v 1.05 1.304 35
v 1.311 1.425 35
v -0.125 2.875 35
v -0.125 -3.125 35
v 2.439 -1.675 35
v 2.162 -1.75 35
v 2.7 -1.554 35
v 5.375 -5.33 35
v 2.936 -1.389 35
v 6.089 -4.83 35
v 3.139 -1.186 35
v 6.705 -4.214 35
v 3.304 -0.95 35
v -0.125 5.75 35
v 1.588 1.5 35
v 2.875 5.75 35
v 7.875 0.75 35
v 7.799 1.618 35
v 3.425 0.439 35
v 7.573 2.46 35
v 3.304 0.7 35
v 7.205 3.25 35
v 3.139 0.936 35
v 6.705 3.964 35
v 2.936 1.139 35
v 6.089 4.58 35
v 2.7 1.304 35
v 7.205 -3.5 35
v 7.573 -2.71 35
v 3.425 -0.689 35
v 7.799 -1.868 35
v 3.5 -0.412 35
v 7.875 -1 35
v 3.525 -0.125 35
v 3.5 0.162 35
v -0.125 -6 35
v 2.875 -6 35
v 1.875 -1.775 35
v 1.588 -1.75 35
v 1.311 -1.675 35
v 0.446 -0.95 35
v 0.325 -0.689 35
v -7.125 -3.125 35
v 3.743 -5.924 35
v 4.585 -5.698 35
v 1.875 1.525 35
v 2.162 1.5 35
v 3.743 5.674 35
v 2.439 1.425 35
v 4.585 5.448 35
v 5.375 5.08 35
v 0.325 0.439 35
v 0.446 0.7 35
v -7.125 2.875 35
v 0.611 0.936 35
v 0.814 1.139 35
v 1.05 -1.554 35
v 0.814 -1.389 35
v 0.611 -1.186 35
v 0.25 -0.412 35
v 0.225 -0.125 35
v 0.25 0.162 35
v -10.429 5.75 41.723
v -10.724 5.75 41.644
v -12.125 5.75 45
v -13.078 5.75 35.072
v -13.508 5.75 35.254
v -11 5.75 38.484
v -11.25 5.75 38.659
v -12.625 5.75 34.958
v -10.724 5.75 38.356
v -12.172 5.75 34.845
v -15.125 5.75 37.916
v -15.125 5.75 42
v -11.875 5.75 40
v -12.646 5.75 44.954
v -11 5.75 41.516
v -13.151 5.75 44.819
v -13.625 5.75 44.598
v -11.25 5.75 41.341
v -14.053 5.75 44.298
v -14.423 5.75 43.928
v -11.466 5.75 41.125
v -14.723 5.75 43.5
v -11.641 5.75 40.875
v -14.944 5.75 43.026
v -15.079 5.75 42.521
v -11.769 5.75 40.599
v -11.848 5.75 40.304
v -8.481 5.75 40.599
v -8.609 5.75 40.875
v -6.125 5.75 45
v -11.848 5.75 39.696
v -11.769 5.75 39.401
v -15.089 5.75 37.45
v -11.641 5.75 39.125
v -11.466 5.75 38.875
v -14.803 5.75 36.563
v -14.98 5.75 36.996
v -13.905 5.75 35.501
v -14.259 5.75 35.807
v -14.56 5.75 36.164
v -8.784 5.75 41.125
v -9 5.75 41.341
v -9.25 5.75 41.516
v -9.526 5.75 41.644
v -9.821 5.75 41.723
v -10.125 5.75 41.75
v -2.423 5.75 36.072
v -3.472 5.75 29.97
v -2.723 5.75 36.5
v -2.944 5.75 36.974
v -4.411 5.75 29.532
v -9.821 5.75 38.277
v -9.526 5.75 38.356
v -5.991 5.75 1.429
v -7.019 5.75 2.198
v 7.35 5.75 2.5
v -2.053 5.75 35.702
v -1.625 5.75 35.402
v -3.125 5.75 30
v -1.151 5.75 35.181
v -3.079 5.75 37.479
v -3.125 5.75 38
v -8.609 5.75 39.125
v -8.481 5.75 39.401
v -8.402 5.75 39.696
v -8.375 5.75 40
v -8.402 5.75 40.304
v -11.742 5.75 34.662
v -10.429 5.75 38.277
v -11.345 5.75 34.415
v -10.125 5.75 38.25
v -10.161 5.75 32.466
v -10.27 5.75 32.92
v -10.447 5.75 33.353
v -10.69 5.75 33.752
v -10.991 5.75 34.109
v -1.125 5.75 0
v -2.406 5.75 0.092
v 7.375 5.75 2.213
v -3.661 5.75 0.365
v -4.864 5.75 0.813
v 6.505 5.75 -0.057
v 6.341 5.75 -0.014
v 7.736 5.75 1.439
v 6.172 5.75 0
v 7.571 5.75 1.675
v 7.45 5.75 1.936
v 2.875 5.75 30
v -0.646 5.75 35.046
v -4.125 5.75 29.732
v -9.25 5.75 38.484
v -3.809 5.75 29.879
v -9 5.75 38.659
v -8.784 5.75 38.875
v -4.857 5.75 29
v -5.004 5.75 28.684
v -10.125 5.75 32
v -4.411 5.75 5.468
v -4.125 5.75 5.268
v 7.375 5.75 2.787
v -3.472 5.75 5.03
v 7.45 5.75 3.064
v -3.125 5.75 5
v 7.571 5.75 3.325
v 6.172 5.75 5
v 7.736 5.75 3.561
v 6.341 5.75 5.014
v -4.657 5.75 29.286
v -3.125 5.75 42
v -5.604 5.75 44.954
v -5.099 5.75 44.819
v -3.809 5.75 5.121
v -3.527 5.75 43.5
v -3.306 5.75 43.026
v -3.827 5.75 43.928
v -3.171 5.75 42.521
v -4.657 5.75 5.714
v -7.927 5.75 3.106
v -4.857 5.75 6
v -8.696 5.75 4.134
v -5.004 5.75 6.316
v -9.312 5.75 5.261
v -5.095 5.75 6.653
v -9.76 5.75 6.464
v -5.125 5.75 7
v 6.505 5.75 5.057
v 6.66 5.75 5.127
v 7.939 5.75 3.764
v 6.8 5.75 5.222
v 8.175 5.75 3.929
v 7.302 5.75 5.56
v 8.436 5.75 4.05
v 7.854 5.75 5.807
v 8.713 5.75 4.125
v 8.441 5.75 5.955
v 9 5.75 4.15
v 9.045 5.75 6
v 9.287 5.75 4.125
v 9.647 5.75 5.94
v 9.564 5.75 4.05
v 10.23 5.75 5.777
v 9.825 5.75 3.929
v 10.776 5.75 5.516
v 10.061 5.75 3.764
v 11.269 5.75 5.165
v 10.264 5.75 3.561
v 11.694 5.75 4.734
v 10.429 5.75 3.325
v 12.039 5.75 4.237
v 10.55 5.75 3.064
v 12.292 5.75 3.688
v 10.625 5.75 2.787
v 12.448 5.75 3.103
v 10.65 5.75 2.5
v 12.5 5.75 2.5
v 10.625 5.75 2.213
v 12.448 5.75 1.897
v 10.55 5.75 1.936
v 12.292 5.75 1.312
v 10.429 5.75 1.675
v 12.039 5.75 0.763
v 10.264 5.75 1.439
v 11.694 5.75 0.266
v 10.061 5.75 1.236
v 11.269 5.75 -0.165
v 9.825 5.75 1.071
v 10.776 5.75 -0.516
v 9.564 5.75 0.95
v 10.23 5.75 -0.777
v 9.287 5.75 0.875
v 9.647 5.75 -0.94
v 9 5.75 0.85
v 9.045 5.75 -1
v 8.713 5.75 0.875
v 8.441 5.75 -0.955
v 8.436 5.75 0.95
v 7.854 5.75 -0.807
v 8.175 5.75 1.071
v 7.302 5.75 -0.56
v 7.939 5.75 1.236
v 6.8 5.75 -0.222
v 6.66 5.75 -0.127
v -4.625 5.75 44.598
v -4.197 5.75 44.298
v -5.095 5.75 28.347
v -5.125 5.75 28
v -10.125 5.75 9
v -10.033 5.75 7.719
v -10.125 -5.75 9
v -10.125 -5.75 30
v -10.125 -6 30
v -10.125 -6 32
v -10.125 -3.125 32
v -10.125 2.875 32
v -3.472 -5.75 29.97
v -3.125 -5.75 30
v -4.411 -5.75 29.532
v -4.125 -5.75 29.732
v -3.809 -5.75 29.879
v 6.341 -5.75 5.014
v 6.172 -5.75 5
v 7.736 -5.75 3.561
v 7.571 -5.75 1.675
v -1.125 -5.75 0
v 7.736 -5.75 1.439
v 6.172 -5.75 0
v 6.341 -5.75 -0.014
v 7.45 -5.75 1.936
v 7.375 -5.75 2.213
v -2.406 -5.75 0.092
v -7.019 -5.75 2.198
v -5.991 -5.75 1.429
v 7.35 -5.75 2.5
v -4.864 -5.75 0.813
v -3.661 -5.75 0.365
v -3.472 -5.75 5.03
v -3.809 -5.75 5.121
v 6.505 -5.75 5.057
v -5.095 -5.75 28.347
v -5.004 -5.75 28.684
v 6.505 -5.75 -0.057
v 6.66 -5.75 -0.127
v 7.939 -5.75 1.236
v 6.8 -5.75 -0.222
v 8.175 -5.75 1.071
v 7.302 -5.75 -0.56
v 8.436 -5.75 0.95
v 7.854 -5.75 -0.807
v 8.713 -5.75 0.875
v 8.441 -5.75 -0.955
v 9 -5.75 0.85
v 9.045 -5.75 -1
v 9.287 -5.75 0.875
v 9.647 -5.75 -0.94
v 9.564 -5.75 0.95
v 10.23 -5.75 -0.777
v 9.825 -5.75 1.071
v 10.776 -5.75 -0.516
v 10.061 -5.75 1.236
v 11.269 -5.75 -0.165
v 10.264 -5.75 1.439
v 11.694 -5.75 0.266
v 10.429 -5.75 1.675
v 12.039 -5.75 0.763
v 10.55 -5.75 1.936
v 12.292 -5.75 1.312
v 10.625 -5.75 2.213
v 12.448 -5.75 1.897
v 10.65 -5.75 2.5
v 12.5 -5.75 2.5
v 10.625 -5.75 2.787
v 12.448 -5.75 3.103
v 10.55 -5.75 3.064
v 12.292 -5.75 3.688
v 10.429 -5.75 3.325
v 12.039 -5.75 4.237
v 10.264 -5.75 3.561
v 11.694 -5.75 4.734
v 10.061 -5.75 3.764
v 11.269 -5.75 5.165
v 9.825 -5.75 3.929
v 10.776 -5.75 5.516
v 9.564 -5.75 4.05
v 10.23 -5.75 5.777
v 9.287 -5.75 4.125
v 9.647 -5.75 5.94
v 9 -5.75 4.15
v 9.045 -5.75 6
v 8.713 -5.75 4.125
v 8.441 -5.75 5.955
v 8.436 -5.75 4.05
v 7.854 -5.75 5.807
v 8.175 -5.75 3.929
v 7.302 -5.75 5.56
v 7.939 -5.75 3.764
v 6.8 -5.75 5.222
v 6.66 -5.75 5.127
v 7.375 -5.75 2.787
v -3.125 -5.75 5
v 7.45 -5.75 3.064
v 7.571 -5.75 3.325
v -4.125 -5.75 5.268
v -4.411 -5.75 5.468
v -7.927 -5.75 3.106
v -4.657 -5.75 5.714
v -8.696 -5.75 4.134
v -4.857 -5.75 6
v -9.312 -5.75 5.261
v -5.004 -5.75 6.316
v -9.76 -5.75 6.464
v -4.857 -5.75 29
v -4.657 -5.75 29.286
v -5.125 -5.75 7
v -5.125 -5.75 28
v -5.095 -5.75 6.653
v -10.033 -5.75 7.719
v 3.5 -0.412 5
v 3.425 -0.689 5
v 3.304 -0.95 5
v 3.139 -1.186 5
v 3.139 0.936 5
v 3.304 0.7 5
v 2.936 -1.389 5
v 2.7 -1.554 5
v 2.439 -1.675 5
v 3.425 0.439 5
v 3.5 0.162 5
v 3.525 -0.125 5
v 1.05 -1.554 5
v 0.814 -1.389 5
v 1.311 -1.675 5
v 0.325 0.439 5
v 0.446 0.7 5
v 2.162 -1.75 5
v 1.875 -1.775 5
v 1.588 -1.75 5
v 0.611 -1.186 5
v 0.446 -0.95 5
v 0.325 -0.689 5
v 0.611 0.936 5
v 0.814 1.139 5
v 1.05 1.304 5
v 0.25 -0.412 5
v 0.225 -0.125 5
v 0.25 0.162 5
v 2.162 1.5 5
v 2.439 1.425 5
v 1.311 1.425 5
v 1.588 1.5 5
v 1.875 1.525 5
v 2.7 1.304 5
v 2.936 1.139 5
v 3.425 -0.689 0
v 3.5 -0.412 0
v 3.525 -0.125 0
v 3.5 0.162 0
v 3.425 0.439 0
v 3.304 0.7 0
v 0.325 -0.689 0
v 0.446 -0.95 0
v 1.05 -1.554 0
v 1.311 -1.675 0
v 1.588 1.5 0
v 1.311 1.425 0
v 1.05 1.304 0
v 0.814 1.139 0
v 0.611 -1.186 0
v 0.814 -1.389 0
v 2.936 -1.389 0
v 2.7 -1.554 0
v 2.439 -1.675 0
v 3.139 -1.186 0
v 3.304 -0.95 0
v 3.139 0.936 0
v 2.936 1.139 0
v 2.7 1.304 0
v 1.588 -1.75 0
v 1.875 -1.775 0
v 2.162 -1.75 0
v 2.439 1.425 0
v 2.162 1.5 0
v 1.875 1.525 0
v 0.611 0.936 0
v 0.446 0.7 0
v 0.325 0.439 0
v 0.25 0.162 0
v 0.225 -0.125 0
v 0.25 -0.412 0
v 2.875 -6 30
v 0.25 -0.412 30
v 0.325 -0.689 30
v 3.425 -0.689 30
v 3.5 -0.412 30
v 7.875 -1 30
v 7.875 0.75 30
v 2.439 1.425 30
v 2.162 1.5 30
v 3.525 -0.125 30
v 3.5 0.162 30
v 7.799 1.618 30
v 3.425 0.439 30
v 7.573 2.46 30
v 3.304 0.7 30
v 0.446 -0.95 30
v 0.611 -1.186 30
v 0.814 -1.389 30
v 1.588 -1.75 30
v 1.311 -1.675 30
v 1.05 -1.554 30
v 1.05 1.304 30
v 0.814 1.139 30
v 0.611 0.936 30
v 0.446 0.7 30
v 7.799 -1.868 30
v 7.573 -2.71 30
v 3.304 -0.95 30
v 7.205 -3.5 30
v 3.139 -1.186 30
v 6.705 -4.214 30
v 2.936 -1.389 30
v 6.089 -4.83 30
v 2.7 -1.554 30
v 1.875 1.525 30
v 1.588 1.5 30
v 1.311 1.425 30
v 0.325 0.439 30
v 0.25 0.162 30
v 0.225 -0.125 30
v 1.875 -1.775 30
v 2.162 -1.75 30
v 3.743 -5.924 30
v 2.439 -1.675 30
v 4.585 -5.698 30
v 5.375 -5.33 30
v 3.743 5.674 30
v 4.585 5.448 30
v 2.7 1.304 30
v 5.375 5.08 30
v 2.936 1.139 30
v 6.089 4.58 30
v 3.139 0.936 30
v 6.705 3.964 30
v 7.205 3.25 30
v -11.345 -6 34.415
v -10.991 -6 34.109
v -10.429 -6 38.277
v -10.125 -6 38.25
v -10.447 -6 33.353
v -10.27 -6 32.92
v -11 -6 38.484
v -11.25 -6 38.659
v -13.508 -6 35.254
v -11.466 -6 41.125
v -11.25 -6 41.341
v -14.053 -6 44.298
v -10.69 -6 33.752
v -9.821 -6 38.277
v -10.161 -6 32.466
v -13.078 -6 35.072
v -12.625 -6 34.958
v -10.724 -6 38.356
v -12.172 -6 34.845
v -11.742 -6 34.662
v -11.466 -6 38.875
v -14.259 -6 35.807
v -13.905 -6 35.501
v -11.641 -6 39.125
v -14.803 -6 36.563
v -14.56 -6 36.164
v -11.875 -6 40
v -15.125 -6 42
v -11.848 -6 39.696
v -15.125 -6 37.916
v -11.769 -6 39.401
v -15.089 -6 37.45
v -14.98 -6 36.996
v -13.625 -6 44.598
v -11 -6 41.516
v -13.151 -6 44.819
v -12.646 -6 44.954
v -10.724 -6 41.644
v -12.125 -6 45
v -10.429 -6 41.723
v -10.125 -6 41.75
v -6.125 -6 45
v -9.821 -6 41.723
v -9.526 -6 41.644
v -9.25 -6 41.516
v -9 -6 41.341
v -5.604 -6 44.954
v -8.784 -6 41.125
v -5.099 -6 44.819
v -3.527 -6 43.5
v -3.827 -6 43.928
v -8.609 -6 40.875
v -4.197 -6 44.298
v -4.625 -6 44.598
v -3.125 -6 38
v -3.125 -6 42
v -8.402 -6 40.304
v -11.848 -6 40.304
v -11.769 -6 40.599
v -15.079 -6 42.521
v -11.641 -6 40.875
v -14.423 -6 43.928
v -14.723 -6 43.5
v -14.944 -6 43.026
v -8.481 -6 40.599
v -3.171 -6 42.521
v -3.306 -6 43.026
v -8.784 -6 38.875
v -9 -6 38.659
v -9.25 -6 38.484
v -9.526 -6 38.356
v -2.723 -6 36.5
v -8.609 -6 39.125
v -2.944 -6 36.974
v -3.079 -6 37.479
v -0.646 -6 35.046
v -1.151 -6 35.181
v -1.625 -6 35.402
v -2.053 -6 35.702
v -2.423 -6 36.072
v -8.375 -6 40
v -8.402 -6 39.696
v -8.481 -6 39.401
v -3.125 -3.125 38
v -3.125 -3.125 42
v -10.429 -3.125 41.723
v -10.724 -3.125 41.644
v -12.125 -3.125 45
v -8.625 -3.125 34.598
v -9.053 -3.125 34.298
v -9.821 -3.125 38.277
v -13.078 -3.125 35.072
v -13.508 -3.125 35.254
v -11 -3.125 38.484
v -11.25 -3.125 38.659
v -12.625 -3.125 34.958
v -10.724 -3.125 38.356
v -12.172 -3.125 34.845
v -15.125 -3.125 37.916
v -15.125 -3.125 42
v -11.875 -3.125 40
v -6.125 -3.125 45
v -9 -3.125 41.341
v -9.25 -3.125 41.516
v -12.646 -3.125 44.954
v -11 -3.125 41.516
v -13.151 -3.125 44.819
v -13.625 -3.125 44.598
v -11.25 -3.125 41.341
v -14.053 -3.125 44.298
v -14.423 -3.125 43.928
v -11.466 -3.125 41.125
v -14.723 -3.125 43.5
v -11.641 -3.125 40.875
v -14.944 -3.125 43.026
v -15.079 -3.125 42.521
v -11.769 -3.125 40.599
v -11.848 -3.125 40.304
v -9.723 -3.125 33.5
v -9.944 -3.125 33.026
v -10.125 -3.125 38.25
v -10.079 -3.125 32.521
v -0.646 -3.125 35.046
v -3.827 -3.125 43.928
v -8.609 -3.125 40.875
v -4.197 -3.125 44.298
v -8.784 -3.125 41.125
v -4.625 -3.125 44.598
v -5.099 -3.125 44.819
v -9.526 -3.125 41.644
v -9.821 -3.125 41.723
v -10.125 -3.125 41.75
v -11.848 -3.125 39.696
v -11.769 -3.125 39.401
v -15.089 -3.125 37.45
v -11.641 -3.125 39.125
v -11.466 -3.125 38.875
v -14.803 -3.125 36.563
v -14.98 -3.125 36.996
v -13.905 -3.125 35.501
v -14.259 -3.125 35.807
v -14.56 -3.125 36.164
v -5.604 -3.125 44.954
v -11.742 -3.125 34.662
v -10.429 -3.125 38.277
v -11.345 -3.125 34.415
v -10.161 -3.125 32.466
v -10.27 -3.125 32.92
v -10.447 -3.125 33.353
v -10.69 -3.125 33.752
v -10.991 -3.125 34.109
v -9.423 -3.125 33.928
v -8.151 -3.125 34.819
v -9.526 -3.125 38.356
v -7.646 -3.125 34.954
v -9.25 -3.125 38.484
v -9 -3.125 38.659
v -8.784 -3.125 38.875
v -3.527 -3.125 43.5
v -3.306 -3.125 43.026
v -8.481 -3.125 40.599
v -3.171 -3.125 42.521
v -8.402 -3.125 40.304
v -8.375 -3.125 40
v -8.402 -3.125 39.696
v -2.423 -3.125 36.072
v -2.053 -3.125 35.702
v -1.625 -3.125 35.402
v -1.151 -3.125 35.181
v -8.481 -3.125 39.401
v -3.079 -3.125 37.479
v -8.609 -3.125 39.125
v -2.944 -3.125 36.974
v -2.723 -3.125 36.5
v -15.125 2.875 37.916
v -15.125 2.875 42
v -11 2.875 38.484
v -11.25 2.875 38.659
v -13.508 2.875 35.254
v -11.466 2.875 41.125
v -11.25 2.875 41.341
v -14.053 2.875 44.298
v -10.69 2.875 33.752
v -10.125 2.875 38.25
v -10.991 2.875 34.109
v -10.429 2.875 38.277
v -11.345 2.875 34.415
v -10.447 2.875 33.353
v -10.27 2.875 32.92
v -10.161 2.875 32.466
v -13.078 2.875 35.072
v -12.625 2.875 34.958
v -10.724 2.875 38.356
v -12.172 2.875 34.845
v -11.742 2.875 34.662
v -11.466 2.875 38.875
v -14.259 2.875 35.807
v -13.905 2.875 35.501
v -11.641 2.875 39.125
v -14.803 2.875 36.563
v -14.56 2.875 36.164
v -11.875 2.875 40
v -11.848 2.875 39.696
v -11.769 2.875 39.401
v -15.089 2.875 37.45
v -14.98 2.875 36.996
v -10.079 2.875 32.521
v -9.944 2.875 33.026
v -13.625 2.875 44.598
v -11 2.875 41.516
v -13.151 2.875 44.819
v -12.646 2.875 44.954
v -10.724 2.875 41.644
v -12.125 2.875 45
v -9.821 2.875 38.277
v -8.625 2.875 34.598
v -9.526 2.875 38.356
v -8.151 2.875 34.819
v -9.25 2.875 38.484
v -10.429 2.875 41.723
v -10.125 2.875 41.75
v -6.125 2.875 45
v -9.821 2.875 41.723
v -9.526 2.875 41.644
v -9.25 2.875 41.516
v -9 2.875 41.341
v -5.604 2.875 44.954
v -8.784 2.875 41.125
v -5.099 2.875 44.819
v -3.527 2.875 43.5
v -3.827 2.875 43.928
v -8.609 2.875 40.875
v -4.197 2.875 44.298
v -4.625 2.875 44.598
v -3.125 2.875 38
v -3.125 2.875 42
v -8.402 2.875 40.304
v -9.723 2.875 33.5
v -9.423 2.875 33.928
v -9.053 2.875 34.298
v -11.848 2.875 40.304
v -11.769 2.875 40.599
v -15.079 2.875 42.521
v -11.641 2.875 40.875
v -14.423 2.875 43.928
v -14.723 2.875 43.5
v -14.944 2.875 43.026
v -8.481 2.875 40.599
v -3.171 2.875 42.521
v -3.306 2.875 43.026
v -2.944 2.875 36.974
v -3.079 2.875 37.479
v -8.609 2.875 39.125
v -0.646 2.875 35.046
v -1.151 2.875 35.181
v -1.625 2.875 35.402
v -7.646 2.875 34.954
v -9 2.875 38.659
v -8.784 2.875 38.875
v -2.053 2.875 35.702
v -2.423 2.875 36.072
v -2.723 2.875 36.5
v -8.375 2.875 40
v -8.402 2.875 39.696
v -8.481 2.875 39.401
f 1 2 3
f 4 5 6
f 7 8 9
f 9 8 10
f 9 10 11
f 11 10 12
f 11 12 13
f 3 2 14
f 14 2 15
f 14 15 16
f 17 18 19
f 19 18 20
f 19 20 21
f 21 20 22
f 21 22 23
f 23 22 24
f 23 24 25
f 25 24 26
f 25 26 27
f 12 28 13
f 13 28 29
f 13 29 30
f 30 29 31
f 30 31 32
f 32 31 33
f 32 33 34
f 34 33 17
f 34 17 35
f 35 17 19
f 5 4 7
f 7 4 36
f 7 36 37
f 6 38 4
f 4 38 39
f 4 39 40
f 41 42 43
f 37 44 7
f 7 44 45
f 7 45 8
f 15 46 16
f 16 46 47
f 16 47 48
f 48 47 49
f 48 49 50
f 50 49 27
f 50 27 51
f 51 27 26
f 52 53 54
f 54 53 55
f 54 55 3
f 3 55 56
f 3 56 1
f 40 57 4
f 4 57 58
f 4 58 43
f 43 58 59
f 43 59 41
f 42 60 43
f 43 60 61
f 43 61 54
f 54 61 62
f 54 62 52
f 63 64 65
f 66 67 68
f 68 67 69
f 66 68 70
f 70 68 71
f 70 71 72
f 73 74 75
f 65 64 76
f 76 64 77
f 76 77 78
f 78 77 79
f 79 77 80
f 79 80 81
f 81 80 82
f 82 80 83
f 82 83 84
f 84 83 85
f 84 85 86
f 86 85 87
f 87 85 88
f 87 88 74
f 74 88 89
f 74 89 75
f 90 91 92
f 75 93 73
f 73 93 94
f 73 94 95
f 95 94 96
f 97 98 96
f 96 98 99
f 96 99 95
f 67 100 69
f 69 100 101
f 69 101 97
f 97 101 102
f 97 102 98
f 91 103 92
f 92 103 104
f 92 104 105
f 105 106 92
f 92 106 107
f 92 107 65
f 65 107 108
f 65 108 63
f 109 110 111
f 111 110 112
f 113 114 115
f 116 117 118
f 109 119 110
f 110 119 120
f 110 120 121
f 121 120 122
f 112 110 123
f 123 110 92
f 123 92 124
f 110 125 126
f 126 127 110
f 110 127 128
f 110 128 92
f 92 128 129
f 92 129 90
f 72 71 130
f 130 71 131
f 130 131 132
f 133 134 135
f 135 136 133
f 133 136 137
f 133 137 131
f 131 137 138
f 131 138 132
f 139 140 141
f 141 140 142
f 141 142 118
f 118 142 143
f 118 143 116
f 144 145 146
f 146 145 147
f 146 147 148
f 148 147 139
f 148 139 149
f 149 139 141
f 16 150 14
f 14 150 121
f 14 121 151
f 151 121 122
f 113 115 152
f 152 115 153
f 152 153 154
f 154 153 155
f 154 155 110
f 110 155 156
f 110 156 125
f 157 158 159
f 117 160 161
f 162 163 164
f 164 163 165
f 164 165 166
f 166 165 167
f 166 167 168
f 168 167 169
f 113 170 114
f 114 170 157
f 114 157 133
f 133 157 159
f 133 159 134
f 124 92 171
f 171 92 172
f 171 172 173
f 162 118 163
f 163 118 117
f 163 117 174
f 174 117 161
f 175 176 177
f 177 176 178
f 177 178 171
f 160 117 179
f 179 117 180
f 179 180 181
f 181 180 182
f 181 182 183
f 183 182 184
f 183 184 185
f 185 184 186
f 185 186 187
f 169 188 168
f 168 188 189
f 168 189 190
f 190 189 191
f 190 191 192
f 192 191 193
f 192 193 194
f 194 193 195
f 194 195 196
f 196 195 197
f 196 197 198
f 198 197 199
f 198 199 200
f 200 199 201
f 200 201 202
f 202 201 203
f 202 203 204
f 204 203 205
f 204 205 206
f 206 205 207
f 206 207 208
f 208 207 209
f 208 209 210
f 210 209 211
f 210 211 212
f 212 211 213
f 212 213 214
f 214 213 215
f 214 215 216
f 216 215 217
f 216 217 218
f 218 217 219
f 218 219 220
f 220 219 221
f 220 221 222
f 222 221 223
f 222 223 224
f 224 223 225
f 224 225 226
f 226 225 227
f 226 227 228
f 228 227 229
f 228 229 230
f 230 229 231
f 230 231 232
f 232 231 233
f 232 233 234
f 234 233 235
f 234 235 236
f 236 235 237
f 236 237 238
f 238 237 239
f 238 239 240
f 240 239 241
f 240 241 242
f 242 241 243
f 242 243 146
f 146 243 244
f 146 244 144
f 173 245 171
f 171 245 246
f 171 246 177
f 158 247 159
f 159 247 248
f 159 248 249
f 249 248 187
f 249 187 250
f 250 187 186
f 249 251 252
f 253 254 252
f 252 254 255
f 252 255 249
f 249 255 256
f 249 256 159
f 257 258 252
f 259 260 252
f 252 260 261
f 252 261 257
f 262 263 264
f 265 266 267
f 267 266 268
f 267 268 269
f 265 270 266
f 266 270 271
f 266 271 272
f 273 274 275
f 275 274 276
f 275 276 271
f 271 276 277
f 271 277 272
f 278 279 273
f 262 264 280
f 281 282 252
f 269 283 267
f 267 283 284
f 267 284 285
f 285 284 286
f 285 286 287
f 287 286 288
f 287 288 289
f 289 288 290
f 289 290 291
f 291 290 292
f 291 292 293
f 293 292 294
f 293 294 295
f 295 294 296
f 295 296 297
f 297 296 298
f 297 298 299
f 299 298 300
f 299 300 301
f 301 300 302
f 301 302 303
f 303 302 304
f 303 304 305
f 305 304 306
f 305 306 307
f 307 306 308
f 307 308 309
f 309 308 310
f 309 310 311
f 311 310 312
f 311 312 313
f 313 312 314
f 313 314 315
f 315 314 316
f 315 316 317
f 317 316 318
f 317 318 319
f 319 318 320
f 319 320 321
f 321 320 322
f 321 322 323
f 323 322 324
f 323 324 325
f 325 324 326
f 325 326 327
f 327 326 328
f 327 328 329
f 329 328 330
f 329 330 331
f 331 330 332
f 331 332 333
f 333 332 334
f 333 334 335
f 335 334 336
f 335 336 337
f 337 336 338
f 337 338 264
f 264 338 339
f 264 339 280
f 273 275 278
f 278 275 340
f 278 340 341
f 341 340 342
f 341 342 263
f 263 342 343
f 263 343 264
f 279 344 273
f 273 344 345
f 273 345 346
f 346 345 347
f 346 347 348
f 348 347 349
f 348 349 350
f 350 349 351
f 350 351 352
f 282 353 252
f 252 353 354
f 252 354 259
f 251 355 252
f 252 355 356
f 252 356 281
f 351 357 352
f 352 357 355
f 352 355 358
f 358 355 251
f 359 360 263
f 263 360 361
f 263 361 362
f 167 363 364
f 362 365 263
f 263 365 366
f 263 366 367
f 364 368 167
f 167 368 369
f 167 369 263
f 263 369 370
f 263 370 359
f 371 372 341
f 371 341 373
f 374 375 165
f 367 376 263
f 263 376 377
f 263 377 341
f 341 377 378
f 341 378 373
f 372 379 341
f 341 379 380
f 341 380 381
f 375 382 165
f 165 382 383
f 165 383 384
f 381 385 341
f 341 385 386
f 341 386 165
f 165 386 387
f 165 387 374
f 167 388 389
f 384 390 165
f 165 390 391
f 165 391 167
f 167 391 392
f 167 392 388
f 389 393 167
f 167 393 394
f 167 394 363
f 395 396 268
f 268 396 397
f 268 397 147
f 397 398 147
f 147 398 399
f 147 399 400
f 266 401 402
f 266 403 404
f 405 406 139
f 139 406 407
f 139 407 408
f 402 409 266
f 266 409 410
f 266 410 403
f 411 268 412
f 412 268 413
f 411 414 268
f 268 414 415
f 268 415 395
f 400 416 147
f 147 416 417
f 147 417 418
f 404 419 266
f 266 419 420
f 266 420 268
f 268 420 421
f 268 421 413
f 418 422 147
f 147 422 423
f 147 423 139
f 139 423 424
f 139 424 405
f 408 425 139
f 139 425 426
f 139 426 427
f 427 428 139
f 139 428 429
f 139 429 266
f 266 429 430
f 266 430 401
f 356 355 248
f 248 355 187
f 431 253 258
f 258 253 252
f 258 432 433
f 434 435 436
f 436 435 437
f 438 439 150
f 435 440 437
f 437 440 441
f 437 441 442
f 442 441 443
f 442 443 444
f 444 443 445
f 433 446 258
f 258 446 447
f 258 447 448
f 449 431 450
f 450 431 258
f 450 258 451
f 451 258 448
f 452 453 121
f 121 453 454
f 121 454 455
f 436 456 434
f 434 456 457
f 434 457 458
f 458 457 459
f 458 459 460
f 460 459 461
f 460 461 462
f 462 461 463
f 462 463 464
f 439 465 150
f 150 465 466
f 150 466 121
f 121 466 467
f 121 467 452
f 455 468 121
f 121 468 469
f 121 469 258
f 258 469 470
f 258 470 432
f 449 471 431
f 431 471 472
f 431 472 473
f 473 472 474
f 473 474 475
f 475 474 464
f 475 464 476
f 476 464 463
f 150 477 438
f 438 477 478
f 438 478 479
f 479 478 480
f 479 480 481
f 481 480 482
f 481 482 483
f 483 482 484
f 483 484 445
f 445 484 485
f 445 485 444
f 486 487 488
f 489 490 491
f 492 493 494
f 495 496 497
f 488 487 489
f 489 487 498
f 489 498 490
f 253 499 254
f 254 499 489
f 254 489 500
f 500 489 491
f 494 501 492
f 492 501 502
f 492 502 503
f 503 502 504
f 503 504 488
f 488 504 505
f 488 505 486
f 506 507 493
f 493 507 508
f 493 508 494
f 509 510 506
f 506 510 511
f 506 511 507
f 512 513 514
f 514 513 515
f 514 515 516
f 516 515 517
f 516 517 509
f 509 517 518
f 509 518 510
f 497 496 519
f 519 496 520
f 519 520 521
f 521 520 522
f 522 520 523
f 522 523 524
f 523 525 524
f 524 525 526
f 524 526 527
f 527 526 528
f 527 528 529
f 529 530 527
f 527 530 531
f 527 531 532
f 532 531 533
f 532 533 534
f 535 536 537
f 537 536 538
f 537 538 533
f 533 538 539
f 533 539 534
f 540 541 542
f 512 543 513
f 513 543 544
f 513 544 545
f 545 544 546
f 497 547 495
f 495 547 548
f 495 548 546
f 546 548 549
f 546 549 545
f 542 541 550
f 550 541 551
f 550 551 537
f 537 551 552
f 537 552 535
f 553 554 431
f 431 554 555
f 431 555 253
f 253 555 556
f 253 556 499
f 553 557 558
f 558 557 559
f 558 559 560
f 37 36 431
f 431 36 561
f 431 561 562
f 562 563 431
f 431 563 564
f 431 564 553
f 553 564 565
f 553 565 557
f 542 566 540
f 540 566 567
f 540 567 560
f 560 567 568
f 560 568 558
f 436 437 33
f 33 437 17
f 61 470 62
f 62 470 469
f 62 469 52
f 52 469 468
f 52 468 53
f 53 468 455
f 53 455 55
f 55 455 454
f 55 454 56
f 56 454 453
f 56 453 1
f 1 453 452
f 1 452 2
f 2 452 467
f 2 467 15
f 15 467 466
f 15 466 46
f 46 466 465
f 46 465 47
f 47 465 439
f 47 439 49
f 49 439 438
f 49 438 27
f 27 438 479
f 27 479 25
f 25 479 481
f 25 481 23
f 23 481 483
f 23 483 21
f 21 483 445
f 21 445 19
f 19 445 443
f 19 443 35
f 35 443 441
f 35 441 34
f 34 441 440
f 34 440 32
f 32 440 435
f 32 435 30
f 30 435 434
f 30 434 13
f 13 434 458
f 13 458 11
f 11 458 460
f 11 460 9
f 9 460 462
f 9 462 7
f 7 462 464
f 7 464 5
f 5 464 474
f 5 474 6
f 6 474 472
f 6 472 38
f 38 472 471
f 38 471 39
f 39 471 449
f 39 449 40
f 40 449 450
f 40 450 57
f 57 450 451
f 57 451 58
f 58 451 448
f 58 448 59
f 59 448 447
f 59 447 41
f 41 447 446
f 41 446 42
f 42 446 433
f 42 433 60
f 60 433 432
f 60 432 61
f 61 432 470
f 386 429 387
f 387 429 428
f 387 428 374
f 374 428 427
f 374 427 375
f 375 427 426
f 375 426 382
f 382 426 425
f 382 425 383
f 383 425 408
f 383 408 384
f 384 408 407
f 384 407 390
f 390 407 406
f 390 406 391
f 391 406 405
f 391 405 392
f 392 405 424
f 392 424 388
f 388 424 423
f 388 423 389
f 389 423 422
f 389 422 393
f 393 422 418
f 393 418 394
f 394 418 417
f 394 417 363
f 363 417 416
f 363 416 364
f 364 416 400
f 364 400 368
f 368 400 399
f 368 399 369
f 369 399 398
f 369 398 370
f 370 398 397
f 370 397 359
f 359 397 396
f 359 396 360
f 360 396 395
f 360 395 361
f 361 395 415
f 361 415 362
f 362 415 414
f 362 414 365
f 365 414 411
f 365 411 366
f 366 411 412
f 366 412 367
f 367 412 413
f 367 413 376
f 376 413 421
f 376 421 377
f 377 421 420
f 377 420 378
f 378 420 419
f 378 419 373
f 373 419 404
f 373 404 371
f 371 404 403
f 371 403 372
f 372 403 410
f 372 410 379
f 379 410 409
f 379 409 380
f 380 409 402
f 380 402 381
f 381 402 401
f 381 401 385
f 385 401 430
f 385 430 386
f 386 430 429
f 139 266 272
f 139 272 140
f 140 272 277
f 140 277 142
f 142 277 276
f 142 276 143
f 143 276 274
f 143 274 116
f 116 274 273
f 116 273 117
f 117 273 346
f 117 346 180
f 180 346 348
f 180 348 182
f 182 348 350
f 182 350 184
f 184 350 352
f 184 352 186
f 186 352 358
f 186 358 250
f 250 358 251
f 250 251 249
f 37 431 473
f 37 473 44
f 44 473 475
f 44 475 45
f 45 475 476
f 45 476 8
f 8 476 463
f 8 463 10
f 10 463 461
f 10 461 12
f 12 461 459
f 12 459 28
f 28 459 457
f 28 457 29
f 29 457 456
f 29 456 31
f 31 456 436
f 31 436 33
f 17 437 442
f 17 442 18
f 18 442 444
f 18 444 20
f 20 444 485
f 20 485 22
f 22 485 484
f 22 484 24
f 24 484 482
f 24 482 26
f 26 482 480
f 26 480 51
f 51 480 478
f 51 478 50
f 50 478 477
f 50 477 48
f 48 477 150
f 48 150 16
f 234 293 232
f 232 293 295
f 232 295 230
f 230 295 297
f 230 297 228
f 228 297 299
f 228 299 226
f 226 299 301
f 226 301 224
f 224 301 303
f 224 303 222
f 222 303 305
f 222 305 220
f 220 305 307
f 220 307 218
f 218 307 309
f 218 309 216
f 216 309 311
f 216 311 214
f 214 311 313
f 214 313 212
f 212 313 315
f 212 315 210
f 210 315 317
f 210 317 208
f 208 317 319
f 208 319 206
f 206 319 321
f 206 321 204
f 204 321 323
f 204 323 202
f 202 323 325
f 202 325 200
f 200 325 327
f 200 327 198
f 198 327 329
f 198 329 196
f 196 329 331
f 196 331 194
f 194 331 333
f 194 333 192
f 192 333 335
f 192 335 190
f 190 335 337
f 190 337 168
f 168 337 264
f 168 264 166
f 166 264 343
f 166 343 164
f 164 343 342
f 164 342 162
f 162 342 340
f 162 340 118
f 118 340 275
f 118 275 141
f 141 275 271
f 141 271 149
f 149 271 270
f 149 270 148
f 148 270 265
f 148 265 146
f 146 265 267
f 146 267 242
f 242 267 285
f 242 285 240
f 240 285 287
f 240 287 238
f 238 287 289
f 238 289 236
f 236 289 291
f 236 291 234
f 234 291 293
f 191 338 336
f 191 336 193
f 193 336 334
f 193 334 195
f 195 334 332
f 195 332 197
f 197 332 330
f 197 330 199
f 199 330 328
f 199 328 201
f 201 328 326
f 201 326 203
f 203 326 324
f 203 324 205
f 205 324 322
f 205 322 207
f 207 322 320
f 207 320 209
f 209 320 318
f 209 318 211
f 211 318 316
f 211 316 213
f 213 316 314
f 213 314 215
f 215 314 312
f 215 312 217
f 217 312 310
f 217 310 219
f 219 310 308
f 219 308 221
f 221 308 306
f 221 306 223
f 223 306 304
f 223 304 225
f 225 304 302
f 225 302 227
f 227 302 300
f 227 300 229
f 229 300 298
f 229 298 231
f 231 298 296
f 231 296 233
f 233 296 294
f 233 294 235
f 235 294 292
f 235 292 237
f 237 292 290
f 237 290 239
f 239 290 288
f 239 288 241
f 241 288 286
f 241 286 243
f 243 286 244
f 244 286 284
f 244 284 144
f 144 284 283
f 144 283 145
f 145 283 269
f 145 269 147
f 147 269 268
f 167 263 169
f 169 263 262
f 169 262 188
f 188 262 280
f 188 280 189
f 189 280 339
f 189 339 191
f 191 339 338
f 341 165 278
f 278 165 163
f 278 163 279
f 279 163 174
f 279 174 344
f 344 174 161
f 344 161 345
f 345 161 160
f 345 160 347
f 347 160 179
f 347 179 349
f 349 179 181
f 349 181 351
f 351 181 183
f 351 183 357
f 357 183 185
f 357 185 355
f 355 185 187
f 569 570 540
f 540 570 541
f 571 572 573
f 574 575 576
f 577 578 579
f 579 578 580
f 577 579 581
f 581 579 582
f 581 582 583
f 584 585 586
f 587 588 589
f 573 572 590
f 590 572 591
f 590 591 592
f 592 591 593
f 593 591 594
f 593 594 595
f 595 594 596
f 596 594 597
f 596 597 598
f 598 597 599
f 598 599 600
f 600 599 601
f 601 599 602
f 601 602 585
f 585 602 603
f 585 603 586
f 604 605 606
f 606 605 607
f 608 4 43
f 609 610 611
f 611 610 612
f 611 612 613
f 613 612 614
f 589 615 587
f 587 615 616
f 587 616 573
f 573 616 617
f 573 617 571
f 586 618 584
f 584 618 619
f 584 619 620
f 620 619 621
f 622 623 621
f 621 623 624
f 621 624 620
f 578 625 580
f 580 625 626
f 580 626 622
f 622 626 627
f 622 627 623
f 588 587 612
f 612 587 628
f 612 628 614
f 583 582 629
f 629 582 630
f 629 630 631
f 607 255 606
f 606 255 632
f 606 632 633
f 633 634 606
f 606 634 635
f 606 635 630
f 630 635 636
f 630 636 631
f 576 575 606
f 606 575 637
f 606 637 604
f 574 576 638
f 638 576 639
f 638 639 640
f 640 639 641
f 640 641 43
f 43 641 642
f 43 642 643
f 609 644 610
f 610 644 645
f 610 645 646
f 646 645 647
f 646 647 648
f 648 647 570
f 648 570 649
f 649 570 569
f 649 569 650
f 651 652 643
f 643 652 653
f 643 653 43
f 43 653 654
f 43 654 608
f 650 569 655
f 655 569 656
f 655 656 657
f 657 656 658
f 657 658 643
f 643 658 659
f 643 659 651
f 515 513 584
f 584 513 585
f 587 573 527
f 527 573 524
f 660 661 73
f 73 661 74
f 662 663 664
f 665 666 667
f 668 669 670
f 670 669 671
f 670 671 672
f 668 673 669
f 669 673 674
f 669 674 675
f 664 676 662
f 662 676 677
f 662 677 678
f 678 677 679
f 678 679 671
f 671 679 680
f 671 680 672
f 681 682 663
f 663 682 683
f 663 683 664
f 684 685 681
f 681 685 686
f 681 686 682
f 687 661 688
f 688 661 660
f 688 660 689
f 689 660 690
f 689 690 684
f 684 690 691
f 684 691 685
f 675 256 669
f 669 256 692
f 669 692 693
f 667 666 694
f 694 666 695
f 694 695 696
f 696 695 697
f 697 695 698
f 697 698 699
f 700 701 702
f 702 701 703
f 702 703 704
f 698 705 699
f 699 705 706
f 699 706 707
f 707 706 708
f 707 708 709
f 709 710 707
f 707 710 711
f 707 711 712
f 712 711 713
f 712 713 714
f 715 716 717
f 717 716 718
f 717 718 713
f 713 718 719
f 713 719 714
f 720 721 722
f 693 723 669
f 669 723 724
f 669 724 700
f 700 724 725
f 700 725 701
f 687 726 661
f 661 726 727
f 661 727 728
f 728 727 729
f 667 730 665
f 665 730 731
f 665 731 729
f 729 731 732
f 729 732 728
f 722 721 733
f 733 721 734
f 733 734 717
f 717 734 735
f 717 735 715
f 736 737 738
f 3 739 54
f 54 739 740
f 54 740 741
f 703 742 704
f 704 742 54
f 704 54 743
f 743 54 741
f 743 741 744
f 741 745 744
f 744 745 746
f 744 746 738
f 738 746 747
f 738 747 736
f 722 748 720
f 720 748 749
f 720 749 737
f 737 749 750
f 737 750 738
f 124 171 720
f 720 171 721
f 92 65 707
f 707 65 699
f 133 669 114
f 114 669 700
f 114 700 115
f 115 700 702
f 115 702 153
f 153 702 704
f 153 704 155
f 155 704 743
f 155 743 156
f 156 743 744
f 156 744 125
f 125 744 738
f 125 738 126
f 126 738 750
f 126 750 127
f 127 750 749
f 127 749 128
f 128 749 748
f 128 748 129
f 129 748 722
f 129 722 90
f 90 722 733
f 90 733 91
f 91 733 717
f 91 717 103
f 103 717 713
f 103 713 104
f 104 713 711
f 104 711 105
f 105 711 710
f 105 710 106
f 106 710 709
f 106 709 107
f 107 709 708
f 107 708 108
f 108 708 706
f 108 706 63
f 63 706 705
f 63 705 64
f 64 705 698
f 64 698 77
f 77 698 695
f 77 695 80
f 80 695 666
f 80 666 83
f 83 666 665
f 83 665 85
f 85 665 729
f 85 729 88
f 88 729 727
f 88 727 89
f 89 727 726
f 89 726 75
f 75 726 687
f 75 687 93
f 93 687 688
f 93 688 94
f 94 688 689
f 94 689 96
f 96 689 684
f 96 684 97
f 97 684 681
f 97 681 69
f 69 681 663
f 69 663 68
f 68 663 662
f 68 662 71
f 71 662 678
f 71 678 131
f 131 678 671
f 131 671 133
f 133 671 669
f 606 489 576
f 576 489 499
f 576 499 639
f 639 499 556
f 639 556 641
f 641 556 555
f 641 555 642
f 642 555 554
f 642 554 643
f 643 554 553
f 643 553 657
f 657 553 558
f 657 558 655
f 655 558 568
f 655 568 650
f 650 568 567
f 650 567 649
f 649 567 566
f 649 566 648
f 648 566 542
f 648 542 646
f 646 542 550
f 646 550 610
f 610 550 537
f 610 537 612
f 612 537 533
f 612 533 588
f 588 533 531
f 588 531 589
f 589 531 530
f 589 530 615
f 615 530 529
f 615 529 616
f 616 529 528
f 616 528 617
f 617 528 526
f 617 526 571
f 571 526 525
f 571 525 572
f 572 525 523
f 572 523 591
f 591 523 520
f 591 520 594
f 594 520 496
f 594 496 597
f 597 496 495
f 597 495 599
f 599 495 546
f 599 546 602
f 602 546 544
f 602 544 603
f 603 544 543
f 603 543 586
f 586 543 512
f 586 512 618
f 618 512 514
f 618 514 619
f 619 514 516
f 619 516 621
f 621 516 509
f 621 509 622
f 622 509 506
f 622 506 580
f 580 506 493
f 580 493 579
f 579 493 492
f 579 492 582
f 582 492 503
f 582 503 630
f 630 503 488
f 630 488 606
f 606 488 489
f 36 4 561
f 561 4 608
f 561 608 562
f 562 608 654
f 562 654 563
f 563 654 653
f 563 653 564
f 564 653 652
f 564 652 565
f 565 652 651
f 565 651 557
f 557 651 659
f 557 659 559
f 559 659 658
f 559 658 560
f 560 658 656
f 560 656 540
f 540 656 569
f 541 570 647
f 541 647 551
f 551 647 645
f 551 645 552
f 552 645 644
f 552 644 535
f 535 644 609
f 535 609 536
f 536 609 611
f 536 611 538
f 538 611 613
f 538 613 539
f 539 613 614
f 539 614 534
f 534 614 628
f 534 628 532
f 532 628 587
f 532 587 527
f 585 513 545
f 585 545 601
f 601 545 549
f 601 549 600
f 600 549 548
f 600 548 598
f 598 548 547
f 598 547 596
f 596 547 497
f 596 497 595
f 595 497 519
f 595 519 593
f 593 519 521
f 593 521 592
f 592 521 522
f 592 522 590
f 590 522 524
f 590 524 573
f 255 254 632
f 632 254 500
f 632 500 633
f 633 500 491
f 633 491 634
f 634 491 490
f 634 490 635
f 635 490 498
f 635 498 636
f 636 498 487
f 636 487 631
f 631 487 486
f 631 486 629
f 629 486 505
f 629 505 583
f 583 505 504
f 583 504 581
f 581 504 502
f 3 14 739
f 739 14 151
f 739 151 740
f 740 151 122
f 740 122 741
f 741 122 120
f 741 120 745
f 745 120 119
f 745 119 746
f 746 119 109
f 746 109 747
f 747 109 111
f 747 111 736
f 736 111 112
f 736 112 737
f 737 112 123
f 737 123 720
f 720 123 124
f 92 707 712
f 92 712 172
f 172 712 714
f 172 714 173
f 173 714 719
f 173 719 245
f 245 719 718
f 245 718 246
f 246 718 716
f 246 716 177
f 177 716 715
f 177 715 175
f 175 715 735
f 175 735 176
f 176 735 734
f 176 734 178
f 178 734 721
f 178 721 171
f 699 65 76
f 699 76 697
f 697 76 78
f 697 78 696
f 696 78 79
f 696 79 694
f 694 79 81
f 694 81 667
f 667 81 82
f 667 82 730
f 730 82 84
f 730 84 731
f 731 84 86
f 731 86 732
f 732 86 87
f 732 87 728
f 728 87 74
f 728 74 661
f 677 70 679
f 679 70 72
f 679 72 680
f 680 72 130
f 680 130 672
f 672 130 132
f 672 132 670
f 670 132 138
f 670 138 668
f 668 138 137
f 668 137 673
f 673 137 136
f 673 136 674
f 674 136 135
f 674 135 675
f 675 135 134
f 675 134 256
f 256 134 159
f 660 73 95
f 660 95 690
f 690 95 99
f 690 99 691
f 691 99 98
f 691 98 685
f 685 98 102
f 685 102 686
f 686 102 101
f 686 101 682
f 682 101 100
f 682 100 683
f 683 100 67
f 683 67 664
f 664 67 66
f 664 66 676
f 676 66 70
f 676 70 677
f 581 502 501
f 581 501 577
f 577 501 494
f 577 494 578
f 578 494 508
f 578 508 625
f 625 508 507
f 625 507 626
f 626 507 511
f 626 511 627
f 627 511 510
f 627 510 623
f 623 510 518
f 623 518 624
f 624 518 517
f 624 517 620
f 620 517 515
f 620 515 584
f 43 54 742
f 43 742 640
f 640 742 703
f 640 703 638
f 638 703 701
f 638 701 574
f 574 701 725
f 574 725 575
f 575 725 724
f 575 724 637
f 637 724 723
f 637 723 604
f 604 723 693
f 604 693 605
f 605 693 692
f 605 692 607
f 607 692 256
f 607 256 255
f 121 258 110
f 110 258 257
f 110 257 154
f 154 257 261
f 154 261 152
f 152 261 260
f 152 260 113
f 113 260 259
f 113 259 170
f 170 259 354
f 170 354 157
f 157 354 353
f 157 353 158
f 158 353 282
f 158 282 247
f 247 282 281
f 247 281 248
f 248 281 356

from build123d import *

# Parameters (mm, degrees)
SKETCH1_W               = 20.25
SKETCH1_H               = 11.5
BOSS_EXTRUDE1_DEPTH     = 5
SKETCH2_W               = 5
SKETCH2_H               = 11.5
BOSS_EXTRUDE2_DEPTH     = 25
SKETCH3_W               = 18
SKETCH3_H               = 11.75
BOSS_EXTRUDE3_DEPTH     = 5
CUT_EXTRUDE2_DEPTH      = 33.226008518
CUT_EXTRUDE2_DEPTH_BACK = 33.226008518
SKETCH5_R               = 1.65
FILLET1_R               = 9
FILLET7_R               = 5
CUT_EXTRUDE4_DEPTH      = 39.206879289
CUT_EXTRUDE4_DEPTH_BACK = 39.206879289
SKETCH10_R              = 1.65
SKETCH10_4_R            = 3.5
SKETCH10_4_R_2          = 1.65
BOSS_EXTRUDE7_DEPTH     = 11.5
FILLET13_R              = 1
FILLET16_R              = 2
SKETCH11_W              = 12
SKETCH11_H              = 2.875
BOSS_EXTRUDE8_DEPTH     = 10
CUT_EXTRUDE5_DEPTH      = 49.906319888
CUT_EXTRUDE5_DEPTH_BACK = 49.906319888
SKETCH12_R              = 1.75
FILLET17_R              = 3
FILLET18_R              = 3
FILLET19_R              = 3
FILLET20_R              = 2


with BuildPart() as part:
    # Sketch1 → Boss-Extrude1 (new body)
    with BuildSketch(Plane.XY):
        Rectangle(SKETCH1_W, SKETCH1_H)
    extrude(amount=BOSS_EXTRUDE1_DEPTH)

    # Sketch2 → Boss-Extrude2 (add)
    with BuildSketch(Plane.XY.offset(5)):
        with Locations((-7.625, 0)):
            Rectangle(SKETCH2_W, SKETCH2_H)
    extrude(amount=BOSS_EXTRUDE2_DEPTH)

    # Sketch3 → Boss-Extrude3 (add)
    with BuildSketch(Plane.XY.offset(30)):
        with Locations((-1.125, -0.125)):
            Rectangle(SKETCH3_W, SKETCH3_H)
    extrude(amount=BOSS_EXTRUDE3_DEPTH)

    # Sketch5 → Cut-Extrude2 (cut, two sides: drawn at the far end of the back side and taken through both)
    with BuildSketch(Plane(origin=(0, 0, 30), x_dir=(-1, 0, 0), z_dir=(0, 0, -1)).offset(-CUT_EXTRUDE2_DEPTH_BACK)):
        with Locations((-1.875, -0.125)):
            Circle(SKETCH5_R)
    extrude(amount=CUT_EXTRUDE2_DEPTH + CUT_EXTRUDE2_DEPTH_BACK, mode=Mode.SUBTRACT)

    # Fillet1
    fillet1_edges = [part.edges().sort_by_distance(p)[0] for p in [
        (-10.125, 0, 0),
    ]]
    fillet(fillet1_edges, radius=FILLET1_R)

    # Fillet7
    fillet7_edges = [part.edges().sort_by_distance(p)[0] for p in [
        (7.875, -6, 32.5),
        (7.875, 5.75, 32.5),
    ]]
    fillet(fillet7_edges, radius=FILLET7_R)

    # Sketch10 → Cut-Extrude4 (cut, two sides: drawn at the far end of the back side and taken through both)
    with BuildSketch(Plane.XZ.offset(5.75).offset(-CUT_EXTRUDE4_DEPTH_BACK)):
        with Locations((9, 2.5)):
            Circle(SKETCH10_R)
    extrude(amount=CUT_EXTRUDE4_DEPTH + CUT_EXTRUDE4_DEPTH_BACK, mode=Mode.SUBTRACT)

    # Sketch10<4> → Boss-Extrude7 (add)
    with BuildSketch(Plane.XZ.offset(5.75)):
        with Locations((9, 2.5)):
            Circle(SKETCH10_4_R)
        with Locations((9, 2.5)):
            Circle(SKETCH10_4_R_2, mode=Mode.SUBTRACT)
    extrude(amount=-BOSS_EXTRUDE7_DEPTH)

    # Fillet13
    fillet13_edges = [part.edges().sort_by_distance(p)[0] for p in [
        (6.550510257, 0, 0),
        (6.550510257, 0, 5),
    ]]
    fillet(fillet13_edges, radius=FILLET13_R)

    # Fillet16
    fillet16_edges = [part.edges().sort_by_distance(p)[0] for p in [
        (-5.125, 0, 5),
    ]]
    fillet(fillet16_edges, radius=FILLET16_R)

    # Sketch11 → Boss-Extrude8 (add)
    with BuildSketch(Plane.XY.offset(35)):
        with Locations((-9.125, 4.3125)):
            Rectangle(SKETCH11_W, SKETCH11_H)
        with Locations((-9.125, -4.5625)):
            Rectangle(SKETCH11_W, SKETCH11_H)
    extrude(amount=BOSS_EXTRUDE8_DEPTH)

    # Sketch12 → Cut-Extrude5 (cut, two sides: drawn at the far end of the back side and taken through both)
    with BuildSketch(Plane(origin=(0, 5.75, 0), x_dir=(1, 0, 0), z_dir=(0, 1, 0)).offset(-CUT_EXTRUDE5_DEPTH_BACK)):
        with Locations((-10.125, -40)):
            Circle(SKETCH12_R)
    extrude(amount=CUT_EXTRUDE5_DEPTH + CUT_EXTRUDE5_DEPTH_BACK, mode=Mode.SUBTRACT)

    # Fillet17
    fillet17_edges = [part.edges().sort_by_distance(p)[0] for p in [
        (-3.125, 4.3125, 35),
        (-3.125, 4.3125, 45),
        (-15.125, 4.3125, 45),
        (-10.125, 4.3125, 35),
        (-3.125, -4.5625, 35),
        (-3.125, -4.5625, 45),
        (-15.125, -4.5625, 45),
        (-10.125, -4.5625, 35),
    ]]
    fillet(fillet17_edges, radius=FILLET17_R)

    # Fillet18
    fillet18_edges = [part.edges().sort_by_distance(p)[0] for p in [
        (-15.125, 4.3125, 35),
        (-15.125, -4.5625, 35),
    ]]
    fillet(fillet18_edges, radius=FILLET18_R)

    # Fillet19
    fillet19_edges = [part.edges().sort_by_distance(p)[0] for p in [
        (-10.125, -0.125, 35),
    ]]
    fillet(fillet19_edges, radius=FILLET19_R)

    # Fillet20
    fillet20_edges = [part.edges().sort_by_distance(p)[0] for p in [
        (-5.125, 0, 30),
    ]]
    fillet(fillet20_edges, radius=FILLET20_R)


solid = part.part
